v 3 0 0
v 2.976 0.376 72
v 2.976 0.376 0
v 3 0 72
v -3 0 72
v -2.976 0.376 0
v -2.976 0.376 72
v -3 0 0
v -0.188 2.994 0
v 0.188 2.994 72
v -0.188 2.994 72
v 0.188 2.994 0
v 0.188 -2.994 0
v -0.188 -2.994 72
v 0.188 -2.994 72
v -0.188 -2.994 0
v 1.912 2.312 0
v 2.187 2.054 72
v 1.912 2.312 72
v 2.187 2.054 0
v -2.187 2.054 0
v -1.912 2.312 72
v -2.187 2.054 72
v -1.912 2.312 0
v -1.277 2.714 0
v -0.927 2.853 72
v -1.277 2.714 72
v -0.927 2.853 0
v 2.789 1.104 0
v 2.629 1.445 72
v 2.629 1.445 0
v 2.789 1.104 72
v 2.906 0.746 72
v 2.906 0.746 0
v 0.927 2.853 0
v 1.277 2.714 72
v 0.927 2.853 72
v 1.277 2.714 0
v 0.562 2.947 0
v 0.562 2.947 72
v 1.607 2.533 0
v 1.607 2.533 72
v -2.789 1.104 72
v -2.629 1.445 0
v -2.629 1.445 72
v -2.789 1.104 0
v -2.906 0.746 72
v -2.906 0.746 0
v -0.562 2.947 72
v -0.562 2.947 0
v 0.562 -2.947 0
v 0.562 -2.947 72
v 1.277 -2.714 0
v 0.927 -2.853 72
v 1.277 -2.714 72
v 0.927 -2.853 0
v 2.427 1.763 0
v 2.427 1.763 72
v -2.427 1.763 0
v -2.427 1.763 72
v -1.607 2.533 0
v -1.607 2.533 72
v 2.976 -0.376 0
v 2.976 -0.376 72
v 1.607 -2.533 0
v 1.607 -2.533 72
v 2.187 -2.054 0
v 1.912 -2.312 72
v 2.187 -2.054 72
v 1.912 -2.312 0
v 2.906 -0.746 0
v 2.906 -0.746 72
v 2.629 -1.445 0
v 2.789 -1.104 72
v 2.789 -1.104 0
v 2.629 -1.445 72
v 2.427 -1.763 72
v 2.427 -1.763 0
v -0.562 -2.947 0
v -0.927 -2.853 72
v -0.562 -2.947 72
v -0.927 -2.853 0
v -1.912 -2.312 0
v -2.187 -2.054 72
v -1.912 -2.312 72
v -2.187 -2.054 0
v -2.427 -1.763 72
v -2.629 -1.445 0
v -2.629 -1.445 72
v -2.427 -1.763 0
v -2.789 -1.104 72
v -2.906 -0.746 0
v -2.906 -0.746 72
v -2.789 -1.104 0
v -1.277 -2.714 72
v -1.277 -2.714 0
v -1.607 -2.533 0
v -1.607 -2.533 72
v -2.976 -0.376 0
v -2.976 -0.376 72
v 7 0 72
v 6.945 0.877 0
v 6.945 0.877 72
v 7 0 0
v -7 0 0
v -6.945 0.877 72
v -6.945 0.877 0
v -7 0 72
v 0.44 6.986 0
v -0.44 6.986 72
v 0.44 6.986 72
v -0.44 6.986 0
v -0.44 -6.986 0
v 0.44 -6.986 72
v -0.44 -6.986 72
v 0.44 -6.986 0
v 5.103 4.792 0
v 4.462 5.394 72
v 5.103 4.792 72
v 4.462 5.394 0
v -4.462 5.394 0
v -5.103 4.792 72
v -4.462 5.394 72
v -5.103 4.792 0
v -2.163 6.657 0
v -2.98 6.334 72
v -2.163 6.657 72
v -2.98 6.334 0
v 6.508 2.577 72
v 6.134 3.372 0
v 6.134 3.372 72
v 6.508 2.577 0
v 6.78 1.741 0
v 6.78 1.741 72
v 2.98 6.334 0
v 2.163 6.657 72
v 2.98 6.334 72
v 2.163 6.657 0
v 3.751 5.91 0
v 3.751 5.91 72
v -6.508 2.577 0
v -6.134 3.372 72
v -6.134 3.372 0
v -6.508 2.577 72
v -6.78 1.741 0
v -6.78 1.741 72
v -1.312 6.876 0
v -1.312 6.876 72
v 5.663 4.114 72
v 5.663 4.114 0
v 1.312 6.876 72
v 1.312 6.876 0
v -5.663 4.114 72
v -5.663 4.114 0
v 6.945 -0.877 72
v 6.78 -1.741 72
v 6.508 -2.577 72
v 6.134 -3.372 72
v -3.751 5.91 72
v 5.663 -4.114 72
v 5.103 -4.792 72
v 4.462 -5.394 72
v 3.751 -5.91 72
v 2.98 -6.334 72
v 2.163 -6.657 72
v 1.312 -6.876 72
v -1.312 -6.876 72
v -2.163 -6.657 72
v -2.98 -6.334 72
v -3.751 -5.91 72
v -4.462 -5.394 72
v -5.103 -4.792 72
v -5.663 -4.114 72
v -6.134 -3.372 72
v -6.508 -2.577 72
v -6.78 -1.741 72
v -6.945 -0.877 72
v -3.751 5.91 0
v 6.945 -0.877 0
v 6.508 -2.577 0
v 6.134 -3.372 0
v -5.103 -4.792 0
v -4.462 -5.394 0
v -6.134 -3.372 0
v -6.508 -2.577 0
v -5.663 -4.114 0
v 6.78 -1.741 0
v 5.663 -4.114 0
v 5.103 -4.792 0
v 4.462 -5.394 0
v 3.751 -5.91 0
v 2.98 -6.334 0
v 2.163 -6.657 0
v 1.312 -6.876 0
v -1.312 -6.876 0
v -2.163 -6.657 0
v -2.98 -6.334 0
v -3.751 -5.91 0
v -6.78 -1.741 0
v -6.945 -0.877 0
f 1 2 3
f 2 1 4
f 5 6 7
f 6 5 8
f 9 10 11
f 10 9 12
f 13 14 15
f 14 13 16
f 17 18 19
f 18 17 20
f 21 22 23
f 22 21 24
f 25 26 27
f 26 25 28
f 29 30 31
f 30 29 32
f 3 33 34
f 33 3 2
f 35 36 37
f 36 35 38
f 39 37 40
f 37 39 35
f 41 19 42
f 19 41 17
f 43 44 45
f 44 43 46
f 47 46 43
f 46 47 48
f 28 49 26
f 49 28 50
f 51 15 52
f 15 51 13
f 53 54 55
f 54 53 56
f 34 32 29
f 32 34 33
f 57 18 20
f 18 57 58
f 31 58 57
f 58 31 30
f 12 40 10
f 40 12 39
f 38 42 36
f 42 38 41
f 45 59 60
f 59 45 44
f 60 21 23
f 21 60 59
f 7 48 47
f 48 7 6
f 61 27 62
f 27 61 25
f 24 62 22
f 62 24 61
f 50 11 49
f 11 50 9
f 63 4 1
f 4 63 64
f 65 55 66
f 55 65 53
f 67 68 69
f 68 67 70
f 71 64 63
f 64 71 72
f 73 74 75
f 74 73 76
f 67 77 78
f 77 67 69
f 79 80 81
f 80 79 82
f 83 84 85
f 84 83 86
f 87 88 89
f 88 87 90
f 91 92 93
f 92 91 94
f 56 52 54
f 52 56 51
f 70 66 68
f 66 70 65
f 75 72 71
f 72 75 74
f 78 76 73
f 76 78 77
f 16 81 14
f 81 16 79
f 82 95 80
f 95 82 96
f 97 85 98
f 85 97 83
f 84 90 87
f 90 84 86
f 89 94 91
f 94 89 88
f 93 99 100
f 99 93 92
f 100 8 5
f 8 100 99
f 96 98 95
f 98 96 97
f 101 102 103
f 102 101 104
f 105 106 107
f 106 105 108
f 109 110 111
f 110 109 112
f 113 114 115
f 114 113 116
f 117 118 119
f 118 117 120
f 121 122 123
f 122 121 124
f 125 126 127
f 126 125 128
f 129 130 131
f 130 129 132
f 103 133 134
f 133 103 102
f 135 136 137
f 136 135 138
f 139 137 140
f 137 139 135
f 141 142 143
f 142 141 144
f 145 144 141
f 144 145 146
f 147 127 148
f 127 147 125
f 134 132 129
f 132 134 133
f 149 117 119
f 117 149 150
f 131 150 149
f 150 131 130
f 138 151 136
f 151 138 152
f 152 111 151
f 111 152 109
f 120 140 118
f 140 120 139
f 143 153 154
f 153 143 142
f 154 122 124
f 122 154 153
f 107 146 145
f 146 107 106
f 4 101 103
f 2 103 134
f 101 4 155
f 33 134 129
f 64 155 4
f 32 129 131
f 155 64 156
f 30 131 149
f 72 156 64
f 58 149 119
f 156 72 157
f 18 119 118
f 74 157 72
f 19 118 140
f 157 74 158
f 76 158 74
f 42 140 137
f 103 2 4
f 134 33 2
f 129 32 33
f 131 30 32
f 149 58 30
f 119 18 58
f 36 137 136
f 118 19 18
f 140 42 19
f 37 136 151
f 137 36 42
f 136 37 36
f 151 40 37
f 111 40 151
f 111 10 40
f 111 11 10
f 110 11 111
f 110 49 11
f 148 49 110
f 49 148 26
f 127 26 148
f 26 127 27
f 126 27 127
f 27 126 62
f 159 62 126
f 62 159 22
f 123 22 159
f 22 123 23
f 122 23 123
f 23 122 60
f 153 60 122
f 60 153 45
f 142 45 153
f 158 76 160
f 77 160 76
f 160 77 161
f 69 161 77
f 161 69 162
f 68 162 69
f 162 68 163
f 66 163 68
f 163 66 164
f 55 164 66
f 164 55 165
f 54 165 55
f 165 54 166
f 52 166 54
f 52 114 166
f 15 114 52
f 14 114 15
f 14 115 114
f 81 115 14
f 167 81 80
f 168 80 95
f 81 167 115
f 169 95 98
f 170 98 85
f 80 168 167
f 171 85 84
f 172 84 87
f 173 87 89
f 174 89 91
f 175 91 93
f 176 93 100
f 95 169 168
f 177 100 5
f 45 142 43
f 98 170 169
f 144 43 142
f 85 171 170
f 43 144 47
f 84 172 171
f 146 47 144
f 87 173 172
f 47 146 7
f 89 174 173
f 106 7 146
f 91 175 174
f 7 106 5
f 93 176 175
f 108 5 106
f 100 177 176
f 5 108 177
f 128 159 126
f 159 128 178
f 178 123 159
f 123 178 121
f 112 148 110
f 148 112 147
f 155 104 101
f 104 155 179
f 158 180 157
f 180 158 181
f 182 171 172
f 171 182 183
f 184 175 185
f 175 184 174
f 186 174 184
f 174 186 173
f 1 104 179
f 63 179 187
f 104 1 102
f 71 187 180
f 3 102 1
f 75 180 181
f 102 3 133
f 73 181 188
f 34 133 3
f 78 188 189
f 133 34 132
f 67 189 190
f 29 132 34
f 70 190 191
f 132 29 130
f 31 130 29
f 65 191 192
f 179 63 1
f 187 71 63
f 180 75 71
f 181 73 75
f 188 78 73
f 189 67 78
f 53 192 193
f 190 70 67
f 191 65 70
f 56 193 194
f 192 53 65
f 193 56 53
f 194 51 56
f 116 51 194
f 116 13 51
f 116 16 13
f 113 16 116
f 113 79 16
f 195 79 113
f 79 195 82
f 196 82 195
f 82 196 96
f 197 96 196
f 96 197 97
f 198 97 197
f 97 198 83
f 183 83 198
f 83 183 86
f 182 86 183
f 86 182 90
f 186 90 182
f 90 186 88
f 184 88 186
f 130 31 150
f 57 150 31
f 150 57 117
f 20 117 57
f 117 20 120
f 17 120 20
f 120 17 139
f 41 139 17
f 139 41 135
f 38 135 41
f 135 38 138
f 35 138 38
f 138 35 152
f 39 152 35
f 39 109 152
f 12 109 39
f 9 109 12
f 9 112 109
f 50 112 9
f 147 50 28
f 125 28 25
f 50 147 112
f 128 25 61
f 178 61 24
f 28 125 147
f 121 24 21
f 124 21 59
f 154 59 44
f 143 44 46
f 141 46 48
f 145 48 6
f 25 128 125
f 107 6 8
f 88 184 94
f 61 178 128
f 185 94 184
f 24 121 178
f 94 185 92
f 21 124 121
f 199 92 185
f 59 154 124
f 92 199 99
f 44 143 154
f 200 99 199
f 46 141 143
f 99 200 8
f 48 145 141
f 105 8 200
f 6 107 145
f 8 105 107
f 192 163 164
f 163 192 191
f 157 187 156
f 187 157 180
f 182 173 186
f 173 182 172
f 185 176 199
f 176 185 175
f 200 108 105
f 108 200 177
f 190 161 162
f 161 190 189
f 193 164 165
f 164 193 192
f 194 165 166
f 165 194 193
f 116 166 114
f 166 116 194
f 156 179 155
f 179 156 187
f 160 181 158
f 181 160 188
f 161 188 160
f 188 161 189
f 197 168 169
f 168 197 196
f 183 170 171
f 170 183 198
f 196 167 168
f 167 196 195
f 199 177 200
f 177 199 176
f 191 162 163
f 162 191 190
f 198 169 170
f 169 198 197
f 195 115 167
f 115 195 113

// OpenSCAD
$fn = 50;


difference() {
	union() {
		cylinder(h = 72, r = 7.0000000000);
	}
	union() {
		cylinder(h = 72, r = 3.0000000000);
		cylinder(h = 72, r = 3.0000000000);
		cylinder(h = 72, r = 1.5000000000);
		cylinder(h = 72, r = 1.5000000000);
		cylinder(h = 72, r = 1.5000000000);
		cylinder(h = 72, r = 1.5000000000);
		cylinder(h = 72, r = 1.5000000000);
		cylinder(h = 72, r = 1.5000000000);
	}
}
